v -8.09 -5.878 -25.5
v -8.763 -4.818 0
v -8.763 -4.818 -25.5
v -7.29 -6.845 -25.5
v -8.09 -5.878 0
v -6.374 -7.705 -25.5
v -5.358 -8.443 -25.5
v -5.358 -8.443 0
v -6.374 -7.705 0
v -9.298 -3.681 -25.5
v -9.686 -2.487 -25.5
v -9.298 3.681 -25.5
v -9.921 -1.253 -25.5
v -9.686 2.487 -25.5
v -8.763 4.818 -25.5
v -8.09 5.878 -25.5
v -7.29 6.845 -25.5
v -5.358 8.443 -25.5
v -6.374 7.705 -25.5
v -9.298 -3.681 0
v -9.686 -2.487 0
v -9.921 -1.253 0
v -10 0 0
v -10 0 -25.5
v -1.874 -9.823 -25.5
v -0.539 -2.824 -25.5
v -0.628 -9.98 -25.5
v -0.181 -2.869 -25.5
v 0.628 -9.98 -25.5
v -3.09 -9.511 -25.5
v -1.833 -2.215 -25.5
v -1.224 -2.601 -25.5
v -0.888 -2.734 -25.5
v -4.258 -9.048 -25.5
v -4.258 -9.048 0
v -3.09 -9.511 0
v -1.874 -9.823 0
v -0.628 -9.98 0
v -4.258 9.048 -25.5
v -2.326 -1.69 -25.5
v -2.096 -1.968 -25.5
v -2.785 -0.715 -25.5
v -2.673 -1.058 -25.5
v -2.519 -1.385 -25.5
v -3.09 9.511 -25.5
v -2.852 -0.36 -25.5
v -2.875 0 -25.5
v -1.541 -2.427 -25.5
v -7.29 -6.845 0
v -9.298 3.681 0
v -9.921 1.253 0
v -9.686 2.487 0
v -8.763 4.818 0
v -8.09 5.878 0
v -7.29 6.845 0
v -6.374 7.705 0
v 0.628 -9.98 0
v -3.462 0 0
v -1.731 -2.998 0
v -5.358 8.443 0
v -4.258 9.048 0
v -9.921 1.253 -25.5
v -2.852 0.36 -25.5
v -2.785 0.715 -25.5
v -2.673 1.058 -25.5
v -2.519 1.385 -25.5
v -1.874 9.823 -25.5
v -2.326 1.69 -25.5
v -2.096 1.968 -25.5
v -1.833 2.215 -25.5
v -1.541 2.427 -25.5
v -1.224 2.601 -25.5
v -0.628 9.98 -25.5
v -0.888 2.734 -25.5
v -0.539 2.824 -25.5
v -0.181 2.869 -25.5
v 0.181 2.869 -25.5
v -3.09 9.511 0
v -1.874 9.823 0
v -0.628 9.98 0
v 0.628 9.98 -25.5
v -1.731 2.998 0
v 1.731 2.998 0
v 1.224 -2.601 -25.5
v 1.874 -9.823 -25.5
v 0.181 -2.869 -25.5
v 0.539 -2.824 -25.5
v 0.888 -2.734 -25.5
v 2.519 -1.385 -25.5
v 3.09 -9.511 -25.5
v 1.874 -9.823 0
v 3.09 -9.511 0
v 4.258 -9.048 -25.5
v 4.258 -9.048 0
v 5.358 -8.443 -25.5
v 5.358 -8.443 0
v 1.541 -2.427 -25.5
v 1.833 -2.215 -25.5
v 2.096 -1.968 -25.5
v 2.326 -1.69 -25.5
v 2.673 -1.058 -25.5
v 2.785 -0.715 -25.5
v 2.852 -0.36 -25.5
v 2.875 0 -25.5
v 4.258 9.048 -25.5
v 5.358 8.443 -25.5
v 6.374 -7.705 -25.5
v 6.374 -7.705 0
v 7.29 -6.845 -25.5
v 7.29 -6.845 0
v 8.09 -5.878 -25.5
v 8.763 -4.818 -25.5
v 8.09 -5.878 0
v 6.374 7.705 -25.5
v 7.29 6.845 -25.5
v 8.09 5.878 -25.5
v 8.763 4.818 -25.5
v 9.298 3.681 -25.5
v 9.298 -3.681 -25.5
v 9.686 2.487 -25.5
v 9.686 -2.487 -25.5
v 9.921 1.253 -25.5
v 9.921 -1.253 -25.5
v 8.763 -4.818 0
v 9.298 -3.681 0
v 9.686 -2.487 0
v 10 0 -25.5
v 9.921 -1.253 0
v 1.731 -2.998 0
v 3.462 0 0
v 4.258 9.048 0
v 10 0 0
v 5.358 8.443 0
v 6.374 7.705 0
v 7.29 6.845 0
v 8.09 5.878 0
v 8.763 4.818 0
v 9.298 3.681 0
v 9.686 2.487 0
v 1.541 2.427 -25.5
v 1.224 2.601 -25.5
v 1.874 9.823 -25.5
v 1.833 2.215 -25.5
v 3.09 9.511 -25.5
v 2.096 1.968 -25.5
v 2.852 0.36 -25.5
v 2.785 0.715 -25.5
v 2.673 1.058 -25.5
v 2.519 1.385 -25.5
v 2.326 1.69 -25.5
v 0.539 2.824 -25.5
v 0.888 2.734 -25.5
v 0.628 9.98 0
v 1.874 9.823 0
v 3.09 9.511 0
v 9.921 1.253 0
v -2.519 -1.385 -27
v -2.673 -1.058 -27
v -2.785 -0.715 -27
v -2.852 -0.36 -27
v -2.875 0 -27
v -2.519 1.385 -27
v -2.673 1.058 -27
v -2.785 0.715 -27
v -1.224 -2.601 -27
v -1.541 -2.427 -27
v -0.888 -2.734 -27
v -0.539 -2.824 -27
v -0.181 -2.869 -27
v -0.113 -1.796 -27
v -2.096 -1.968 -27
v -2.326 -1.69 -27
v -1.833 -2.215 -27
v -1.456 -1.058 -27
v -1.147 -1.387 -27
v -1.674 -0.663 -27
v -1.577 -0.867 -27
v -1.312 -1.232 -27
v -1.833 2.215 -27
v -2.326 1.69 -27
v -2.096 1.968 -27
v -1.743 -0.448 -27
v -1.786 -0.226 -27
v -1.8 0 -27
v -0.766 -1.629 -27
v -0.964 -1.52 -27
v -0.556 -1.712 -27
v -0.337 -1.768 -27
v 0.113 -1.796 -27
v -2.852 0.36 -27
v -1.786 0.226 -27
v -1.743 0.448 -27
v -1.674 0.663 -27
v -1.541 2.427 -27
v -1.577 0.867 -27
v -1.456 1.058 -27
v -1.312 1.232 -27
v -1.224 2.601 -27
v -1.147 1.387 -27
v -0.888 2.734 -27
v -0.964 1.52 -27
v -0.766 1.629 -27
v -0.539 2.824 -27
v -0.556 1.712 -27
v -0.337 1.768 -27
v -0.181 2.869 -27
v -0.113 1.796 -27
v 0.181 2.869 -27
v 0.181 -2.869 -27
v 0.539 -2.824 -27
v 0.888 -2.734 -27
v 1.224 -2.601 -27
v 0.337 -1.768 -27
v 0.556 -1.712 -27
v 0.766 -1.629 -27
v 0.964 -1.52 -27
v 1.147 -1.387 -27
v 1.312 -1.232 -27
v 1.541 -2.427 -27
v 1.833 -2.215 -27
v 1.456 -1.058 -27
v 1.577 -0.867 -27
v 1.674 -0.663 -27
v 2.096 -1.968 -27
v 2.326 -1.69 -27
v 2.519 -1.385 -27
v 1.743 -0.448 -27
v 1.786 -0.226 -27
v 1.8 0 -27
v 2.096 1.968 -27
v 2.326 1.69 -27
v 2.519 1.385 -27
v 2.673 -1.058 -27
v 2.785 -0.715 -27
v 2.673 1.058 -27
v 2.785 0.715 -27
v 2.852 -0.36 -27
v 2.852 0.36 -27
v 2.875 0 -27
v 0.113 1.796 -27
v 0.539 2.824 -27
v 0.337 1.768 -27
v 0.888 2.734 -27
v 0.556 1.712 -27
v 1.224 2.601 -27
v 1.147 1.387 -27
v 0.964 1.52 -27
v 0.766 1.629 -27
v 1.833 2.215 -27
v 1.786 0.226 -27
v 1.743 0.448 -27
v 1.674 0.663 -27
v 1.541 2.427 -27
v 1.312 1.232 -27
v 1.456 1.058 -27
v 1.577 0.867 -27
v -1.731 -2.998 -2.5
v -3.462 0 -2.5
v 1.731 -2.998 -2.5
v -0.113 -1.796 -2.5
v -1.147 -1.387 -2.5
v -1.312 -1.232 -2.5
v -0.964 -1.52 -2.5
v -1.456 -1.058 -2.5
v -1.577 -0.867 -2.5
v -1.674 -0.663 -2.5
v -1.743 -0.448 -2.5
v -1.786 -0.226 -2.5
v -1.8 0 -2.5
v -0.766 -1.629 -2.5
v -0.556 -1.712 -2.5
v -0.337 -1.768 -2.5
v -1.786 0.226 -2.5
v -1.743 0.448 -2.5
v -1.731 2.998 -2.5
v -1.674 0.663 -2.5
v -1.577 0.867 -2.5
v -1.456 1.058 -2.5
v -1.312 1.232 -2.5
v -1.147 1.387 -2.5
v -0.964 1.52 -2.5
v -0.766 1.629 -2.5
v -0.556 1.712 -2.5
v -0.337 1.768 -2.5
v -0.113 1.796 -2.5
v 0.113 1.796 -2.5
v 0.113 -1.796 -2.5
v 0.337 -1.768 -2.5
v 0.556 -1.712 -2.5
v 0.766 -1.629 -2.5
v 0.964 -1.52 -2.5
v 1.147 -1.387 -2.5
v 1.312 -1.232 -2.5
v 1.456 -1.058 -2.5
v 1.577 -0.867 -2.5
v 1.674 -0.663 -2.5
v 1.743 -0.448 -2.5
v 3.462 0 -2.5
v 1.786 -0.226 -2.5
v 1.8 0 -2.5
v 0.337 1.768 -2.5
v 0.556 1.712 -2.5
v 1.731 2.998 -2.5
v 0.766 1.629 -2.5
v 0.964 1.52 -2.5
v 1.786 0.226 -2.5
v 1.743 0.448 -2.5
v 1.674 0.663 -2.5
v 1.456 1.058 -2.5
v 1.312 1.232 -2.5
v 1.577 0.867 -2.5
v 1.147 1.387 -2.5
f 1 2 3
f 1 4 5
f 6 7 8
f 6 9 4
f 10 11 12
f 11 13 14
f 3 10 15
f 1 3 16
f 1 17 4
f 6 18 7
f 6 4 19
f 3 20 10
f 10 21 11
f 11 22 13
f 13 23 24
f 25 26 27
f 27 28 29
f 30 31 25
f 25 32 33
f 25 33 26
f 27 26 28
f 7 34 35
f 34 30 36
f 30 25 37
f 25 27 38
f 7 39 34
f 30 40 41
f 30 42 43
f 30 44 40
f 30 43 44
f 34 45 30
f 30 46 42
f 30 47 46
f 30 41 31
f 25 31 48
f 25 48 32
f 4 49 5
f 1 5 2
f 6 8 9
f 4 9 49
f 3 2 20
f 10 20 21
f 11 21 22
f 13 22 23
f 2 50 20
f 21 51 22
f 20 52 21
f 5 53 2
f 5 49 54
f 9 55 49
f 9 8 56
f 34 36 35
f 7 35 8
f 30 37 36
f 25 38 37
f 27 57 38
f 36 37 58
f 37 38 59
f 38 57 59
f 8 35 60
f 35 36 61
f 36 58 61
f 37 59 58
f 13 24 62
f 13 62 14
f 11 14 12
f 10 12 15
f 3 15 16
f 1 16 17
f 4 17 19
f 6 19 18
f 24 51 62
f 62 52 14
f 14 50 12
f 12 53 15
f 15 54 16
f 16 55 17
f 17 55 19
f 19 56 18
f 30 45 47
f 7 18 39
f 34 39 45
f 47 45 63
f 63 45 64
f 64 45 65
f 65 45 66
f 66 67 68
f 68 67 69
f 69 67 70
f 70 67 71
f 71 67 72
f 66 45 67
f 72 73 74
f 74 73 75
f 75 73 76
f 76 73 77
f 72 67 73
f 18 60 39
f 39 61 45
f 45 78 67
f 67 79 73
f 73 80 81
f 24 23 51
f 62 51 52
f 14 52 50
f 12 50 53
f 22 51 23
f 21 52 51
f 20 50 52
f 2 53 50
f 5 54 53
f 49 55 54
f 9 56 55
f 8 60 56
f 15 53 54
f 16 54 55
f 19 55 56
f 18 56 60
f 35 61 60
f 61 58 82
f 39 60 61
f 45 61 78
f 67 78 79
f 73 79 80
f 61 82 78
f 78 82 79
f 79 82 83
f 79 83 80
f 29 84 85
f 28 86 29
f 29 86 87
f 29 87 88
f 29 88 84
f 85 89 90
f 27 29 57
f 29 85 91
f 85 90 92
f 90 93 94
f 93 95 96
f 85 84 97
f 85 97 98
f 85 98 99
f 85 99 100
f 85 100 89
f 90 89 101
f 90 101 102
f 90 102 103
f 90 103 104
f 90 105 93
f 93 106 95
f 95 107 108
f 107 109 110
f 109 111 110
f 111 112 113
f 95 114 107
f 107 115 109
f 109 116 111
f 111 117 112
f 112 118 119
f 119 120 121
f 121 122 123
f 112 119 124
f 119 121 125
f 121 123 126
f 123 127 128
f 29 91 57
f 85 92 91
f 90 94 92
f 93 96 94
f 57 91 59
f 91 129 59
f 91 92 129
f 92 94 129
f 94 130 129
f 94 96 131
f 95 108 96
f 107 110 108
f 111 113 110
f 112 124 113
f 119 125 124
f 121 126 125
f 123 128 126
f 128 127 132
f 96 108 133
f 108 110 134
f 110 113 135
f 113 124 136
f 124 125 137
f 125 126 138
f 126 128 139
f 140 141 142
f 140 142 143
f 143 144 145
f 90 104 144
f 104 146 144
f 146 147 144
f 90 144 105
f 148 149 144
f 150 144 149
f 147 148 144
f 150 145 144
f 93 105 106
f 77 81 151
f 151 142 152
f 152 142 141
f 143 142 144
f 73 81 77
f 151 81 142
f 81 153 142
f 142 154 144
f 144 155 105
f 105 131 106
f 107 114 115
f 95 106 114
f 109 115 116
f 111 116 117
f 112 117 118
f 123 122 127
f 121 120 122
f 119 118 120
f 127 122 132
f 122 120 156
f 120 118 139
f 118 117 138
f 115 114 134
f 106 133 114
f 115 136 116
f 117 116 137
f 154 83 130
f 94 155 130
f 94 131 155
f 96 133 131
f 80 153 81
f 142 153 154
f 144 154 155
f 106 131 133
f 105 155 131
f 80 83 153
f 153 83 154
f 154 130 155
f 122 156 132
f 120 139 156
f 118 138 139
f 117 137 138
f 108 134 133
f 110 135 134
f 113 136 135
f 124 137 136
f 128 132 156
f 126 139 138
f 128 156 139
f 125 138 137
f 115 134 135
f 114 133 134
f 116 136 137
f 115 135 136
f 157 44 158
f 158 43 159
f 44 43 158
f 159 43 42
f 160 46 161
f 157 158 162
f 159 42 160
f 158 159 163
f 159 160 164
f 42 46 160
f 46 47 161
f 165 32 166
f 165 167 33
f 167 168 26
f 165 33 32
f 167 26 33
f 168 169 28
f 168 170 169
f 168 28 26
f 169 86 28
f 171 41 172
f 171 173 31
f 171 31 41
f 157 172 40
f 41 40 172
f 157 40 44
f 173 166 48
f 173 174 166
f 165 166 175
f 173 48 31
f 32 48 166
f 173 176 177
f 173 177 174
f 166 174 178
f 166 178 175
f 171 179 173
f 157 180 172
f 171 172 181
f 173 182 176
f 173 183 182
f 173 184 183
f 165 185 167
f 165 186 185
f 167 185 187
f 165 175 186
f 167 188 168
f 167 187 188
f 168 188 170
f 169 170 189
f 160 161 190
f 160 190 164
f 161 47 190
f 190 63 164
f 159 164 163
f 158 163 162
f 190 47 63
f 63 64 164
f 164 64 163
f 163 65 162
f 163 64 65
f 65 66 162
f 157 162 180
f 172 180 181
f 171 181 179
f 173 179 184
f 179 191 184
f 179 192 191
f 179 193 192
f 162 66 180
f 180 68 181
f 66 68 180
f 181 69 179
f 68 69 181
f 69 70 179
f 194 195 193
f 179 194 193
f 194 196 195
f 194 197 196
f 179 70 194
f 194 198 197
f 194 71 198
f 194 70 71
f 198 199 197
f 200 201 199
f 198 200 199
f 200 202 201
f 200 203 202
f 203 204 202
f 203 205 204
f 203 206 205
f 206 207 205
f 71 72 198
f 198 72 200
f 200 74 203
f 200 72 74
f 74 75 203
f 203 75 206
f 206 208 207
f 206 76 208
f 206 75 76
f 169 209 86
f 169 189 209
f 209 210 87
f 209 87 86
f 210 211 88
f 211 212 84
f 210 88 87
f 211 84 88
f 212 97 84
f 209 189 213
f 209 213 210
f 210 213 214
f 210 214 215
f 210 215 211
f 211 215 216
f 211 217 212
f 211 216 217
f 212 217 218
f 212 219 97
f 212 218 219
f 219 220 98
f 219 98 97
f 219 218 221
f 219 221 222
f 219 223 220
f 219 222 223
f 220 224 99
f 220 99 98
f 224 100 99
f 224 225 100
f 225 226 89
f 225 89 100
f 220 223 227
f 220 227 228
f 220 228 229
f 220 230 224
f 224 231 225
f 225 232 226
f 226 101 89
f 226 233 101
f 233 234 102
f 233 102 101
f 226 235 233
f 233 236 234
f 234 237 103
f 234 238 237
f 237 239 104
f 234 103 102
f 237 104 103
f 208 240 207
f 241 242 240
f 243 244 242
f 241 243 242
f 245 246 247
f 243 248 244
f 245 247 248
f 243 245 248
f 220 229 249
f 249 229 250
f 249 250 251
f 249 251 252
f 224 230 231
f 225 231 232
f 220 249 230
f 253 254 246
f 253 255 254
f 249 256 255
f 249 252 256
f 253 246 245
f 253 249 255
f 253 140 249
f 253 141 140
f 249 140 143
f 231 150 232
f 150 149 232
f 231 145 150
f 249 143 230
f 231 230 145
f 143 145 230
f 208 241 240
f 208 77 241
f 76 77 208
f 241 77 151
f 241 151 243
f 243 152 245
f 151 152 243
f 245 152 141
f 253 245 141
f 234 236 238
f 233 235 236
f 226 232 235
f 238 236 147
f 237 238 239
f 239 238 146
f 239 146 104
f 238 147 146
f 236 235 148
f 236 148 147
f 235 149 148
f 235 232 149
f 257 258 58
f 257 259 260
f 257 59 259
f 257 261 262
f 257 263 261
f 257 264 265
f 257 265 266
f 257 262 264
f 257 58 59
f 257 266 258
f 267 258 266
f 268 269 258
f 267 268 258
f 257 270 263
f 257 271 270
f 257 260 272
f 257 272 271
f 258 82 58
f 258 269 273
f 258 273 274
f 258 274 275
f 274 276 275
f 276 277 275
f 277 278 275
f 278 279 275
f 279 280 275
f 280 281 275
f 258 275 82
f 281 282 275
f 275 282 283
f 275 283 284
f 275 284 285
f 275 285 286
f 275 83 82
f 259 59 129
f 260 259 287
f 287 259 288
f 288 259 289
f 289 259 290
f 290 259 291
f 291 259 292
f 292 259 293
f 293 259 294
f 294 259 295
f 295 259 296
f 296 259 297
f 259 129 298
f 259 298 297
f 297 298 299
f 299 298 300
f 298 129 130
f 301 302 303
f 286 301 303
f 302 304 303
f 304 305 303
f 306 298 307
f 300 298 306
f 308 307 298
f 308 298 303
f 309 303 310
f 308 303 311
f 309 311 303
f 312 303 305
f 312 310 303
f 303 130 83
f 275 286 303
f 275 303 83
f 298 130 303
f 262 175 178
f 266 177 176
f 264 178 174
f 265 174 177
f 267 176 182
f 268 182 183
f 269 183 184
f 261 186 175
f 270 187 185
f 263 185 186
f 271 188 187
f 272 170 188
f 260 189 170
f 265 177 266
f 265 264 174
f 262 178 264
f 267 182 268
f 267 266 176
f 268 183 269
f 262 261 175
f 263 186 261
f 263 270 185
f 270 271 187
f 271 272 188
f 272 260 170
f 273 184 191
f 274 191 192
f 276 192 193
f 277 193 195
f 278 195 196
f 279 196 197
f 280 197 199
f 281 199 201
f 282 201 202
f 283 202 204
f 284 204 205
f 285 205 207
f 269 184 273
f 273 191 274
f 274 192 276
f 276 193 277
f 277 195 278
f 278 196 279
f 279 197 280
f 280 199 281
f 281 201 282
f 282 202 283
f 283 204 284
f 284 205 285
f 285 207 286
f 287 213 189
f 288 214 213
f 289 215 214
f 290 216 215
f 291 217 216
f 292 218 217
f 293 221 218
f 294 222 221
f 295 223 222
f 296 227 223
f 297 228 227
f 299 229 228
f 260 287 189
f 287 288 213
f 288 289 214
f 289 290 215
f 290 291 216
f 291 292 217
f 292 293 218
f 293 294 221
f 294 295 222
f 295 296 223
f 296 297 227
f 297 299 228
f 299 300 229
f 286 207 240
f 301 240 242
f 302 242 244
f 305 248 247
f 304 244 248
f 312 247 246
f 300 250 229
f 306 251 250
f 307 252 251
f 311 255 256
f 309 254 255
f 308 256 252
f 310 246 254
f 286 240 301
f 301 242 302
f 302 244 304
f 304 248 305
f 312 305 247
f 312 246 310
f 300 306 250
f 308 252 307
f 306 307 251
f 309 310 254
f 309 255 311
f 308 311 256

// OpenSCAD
$fn = 50;


difference() {
	union() {
		translate(v = [0, 0, -25.5000000000]) {
			cylinder(h = 25.5000000000, r = 10.0000000000);
		}
		#translate(v = [0, 0, -27.0000000000]) {
			cylinder(h = 27, r = 2.8750000000);
		}
	}
	union() {
		translate(v = [0, 0, 0]) {
			rotate(a = [0, 0, 0]) {
				difference() {
					union() {
						translate(v = [0, 0, -2.5000000000]) {
							linear_extrude(height = 2.5000000000) {
								polygon(points = [[3.4620000000, 0.0000000000], [1.7310000000, 2.9981799479], [-1.7310000000, 2.9981799479], [-3.4620000000, 0.0000000000], [-1.7310000000, -2.9981799479], [1.7310000000, -2.9981799479]]);
							}
						}
					}
					union();
				}
			}
		}
		#translate(v = [0, 0, -100.0000000000]) {
			cylinder(h = 200, r = 1.8000000000);
		}
	}
}
